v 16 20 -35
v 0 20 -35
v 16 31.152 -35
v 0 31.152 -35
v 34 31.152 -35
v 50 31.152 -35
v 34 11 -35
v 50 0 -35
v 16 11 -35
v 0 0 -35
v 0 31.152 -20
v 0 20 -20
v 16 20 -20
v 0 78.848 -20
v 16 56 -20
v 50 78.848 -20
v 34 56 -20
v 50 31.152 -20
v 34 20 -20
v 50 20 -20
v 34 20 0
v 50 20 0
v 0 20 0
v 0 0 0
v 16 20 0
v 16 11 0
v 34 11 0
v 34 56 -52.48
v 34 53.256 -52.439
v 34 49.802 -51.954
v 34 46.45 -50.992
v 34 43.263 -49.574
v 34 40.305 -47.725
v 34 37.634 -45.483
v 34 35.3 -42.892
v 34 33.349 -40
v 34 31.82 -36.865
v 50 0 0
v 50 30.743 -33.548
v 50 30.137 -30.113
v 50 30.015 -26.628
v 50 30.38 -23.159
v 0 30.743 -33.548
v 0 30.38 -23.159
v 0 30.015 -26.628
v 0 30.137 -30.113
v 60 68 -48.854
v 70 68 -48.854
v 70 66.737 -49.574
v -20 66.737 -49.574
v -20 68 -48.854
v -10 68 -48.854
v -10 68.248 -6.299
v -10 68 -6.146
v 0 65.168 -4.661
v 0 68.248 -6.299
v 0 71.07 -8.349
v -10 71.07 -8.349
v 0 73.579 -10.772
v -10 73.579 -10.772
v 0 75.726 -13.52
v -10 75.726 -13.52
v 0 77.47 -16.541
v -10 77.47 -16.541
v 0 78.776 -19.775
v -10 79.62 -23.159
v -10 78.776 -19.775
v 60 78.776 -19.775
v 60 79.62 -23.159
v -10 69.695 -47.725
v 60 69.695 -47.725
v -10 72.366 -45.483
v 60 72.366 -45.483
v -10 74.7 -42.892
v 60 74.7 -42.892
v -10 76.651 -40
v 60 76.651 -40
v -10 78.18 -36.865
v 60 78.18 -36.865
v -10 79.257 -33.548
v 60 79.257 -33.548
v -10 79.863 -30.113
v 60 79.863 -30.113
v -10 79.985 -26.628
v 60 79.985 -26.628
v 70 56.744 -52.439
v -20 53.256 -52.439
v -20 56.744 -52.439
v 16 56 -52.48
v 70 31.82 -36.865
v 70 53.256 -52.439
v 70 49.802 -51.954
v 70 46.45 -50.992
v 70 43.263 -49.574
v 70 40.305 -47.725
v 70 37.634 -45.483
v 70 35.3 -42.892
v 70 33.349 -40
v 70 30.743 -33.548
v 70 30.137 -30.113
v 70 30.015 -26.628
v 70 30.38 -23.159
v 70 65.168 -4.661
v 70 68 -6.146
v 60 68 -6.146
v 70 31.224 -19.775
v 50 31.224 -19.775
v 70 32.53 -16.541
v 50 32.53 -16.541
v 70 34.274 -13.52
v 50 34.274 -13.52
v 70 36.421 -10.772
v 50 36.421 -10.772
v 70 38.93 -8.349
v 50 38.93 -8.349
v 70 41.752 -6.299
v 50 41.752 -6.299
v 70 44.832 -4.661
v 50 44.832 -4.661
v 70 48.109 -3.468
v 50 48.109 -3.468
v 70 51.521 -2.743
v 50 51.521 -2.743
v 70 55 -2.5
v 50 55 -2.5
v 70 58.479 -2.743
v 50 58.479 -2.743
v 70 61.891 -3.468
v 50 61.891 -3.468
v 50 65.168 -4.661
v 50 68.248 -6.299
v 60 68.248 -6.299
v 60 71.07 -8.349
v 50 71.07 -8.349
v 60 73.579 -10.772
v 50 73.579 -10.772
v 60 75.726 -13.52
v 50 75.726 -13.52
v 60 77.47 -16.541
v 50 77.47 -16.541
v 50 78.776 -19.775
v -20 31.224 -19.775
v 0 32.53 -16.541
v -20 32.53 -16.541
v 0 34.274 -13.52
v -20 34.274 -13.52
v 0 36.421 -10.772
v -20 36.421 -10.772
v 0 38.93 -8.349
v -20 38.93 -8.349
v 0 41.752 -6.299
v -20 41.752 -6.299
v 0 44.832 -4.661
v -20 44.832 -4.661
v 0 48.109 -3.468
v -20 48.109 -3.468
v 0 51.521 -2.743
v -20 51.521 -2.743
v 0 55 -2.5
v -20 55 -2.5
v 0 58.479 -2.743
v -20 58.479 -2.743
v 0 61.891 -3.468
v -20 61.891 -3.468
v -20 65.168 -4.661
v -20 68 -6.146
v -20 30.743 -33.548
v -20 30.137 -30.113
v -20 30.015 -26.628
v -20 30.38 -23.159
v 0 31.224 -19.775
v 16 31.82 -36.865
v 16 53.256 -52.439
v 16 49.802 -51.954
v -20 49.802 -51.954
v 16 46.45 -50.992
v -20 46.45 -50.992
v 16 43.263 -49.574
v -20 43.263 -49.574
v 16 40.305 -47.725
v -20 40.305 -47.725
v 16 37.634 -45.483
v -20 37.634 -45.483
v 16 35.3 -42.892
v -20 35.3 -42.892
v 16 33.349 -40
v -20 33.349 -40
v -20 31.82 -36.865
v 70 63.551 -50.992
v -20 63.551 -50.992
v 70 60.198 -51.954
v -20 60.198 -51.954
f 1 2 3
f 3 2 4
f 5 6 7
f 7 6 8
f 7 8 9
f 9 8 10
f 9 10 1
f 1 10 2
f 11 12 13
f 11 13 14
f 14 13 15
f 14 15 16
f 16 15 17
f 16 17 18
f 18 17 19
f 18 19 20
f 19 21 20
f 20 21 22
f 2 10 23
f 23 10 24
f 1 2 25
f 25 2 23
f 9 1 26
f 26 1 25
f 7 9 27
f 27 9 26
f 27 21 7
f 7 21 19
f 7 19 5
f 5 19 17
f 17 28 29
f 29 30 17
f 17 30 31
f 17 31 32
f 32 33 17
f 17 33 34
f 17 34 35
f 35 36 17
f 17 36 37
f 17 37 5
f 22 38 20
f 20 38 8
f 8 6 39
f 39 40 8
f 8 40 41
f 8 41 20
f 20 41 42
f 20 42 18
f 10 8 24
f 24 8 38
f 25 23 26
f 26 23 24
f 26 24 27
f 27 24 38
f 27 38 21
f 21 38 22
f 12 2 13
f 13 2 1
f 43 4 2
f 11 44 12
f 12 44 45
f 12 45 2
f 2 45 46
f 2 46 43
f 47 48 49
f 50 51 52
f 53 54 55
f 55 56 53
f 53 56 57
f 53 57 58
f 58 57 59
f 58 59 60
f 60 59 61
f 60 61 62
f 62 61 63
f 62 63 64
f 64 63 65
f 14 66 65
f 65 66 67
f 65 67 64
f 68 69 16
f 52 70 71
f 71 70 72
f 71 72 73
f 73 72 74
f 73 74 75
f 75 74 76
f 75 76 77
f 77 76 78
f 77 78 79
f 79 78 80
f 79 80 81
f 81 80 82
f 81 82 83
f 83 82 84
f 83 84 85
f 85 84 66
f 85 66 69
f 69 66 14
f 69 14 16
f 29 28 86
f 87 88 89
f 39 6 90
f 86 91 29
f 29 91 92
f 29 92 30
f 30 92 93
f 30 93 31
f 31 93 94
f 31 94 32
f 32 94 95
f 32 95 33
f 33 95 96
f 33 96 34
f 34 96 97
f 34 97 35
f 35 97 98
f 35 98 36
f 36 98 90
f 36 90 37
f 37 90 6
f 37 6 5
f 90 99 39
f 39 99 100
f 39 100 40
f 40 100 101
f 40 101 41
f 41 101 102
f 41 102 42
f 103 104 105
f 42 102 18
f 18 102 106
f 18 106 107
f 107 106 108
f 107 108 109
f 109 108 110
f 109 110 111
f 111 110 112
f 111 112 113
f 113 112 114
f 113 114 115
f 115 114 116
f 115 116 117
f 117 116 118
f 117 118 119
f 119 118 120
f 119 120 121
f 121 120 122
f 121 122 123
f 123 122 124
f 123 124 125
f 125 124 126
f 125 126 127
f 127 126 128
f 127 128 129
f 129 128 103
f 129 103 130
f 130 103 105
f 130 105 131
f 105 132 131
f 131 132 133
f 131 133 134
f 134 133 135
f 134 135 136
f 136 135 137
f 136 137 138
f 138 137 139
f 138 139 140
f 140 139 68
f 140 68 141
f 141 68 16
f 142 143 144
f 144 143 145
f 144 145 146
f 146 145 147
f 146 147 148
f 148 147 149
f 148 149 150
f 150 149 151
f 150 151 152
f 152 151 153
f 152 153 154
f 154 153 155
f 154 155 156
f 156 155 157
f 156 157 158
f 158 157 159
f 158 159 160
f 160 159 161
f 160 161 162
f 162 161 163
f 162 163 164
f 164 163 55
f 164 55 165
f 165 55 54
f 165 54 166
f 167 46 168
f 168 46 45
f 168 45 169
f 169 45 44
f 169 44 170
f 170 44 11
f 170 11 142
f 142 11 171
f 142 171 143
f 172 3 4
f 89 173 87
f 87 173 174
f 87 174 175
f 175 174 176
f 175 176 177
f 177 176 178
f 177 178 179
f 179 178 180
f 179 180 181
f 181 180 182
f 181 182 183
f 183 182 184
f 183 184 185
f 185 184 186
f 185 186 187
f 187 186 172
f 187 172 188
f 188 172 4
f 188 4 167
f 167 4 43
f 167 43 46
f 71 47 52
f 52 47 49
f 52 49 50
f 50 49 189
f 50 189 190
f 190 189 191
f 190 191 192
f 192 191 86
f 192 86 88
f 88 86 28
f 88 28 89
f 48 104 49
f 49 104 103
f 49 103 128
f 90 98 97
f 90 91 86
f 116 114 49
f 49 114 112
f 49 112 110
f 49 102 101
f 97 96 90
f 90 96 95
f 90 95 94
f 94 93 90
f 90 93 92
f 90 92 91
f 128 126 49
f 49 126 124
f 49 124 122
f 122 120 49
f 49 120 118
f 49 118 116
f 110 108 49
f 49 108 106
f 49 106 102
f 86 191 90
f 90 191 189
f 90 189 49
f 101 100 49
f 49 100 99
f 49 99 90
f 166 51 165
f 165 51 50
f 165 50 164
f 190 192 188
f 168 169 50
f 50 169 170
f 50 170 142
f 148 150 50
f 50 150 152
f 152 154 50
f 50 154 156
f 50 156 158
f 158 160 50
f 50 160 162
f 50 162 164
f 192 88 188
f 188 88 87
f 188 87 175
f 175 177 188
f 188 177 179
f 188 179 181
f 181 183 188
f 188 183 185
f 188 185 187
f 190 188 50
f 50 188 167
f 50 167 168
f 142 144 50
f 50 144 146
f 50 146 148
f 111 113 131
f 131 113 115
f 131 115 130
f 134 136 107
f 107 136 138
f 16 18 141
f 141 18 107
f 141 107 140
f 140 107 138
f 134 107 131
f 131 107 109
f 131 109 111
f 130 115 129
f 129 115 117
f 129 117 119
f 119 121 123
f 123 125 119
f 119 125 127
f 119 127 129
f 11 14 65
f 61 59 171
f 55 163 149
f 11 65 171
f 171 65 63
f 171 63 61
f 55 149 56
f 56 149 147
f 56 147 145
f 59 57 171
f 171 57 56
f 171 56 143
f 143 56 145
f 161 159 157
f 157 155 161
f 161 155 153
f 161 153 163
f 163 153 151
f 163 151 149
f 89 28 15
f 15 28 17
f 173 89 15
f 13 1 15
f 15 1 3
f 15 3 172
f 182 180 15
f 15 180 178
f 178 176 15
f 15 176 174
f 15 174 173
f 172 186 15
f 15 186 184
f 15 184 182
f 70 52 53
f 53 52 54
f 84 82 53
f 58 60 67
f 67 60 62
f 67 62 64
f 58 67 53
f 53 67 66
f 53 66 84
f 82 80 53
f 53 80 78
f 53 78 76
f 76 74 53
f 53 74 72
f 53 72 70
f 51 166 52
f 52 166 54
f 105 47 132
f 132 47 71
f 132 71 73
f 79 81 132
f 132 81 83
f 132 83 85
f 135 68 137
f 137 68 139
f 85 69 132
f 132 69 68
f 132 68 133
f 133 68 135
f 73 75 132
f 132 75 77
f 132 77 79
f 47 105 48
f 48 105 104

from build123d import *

# Parameters (mm, degrees)
EXTRUDE_1_DEPTH     = 35
EXTRUDE_START       = 25
SKETCH_2_R          = 25
EXTRUDE_3_DEPTH     = 45
SKETCH_3_W          = 15
SKETCH_3_H          = 35
EXTRUDE_4_DEPTH     = 50
SKETCH_4_W          = 20
SKETCH_4_H          = 60
CUT_EXTRUDE_1_DEPTH = 50
SKETCH_10_W         = 18
SKETCH_10_H         = 45
CUT_EXTRUDE_3_DEPTH = 60
SKETCH_12_W         = 10
SKETCH_12_H         = 12
CUT_EXTRUDE_5_DEPTH = 60


with BuildPart() as part:
    # Эскиз1 → Бобышка-Вытянуть1 (new body)
    with BuildSketch(Plane.XY):
        Polygon((0, 0), (50, 0), (50, 20), (34, 20), (34, 11), (16, 11), (16, 19.999701213), (0, 19.999701213), align=None)
    extrude(amount=-EXTRUDE_1_DEPTH)



with BuildPart() as body_2:
    # Эскиз2 → Бобышка-Вытянуть3 (new, symmetric)
    with BuildSketch(Plane(origin=(0, 0, 0), x_dir=(0, 0, -1), z_dir=(1, 0, 0)).offset(EXTRUDE_START)):
        with Locations((27.5, 55)):
            Circle(SKETCH_2_R)
    extrude(amount=EXTRUDE_3_DEPTH, both=True)


with BuildPart() as part_1:
    add(part.part)

    add(body_2.part)  # Бобышка-Вытянуть4 merges body 2
    # Эскиз3 → Бобышка-Вытянуть4 (add)
    with BuildSketch(Plane(origin=(0, 0, 0), x_dir=(0, 0, -1), z_dir=(1, 0, 0))):
        with Locations((27.5, 37.5)):
            Rectangle(SKETCH_3_W, SKETCH_3_H)
    extrude(amount=EXTRUDE_4_DEPTH)

    # Эскиз4 → Вырез-Вытянуть1 (cut)
    with BuildSketch(Plane(origin=(0, 0, 0), x_dir=(0, 0, -1), z_dir=(1, 0, 0))):
        with Locations((10, 50)):
            Rectangle(SKETCH_4_W, SKETCH_4_H)
    extrude(amount=CUT_EXTRUDE_1_DEPTH, mode=Mode.SUBTRACT)

    # Эскиз10 → Вырез-Вытянуть3 (cut)
    with BuildSketch(Plane.XY):
        with Locations((25, 33.5)):
            Rectangle(SKETCH_10_W, SKETCH_10_H)
    extrude(amount=-CUT_EXTRUDE_3_DEPTH, mode=Mode.SUBTRACT)

    # Эскиз12 → Вырез-Вытянуть5 (cut)
    with BuildSketch(Plane.XY):
        with Locations((-15, 74)):
            Rectangle(SKETCH_12_W, SKETCH_12_H)
        with Locations((65, 74)):
            Rectangle(SKETCH_12_W, SKETCH_12_H)
    extrude(amount=-CUT_EXTRUDE_5_DEPTH, mode=Mode.SUBTRACT)


solid = part_1.part
